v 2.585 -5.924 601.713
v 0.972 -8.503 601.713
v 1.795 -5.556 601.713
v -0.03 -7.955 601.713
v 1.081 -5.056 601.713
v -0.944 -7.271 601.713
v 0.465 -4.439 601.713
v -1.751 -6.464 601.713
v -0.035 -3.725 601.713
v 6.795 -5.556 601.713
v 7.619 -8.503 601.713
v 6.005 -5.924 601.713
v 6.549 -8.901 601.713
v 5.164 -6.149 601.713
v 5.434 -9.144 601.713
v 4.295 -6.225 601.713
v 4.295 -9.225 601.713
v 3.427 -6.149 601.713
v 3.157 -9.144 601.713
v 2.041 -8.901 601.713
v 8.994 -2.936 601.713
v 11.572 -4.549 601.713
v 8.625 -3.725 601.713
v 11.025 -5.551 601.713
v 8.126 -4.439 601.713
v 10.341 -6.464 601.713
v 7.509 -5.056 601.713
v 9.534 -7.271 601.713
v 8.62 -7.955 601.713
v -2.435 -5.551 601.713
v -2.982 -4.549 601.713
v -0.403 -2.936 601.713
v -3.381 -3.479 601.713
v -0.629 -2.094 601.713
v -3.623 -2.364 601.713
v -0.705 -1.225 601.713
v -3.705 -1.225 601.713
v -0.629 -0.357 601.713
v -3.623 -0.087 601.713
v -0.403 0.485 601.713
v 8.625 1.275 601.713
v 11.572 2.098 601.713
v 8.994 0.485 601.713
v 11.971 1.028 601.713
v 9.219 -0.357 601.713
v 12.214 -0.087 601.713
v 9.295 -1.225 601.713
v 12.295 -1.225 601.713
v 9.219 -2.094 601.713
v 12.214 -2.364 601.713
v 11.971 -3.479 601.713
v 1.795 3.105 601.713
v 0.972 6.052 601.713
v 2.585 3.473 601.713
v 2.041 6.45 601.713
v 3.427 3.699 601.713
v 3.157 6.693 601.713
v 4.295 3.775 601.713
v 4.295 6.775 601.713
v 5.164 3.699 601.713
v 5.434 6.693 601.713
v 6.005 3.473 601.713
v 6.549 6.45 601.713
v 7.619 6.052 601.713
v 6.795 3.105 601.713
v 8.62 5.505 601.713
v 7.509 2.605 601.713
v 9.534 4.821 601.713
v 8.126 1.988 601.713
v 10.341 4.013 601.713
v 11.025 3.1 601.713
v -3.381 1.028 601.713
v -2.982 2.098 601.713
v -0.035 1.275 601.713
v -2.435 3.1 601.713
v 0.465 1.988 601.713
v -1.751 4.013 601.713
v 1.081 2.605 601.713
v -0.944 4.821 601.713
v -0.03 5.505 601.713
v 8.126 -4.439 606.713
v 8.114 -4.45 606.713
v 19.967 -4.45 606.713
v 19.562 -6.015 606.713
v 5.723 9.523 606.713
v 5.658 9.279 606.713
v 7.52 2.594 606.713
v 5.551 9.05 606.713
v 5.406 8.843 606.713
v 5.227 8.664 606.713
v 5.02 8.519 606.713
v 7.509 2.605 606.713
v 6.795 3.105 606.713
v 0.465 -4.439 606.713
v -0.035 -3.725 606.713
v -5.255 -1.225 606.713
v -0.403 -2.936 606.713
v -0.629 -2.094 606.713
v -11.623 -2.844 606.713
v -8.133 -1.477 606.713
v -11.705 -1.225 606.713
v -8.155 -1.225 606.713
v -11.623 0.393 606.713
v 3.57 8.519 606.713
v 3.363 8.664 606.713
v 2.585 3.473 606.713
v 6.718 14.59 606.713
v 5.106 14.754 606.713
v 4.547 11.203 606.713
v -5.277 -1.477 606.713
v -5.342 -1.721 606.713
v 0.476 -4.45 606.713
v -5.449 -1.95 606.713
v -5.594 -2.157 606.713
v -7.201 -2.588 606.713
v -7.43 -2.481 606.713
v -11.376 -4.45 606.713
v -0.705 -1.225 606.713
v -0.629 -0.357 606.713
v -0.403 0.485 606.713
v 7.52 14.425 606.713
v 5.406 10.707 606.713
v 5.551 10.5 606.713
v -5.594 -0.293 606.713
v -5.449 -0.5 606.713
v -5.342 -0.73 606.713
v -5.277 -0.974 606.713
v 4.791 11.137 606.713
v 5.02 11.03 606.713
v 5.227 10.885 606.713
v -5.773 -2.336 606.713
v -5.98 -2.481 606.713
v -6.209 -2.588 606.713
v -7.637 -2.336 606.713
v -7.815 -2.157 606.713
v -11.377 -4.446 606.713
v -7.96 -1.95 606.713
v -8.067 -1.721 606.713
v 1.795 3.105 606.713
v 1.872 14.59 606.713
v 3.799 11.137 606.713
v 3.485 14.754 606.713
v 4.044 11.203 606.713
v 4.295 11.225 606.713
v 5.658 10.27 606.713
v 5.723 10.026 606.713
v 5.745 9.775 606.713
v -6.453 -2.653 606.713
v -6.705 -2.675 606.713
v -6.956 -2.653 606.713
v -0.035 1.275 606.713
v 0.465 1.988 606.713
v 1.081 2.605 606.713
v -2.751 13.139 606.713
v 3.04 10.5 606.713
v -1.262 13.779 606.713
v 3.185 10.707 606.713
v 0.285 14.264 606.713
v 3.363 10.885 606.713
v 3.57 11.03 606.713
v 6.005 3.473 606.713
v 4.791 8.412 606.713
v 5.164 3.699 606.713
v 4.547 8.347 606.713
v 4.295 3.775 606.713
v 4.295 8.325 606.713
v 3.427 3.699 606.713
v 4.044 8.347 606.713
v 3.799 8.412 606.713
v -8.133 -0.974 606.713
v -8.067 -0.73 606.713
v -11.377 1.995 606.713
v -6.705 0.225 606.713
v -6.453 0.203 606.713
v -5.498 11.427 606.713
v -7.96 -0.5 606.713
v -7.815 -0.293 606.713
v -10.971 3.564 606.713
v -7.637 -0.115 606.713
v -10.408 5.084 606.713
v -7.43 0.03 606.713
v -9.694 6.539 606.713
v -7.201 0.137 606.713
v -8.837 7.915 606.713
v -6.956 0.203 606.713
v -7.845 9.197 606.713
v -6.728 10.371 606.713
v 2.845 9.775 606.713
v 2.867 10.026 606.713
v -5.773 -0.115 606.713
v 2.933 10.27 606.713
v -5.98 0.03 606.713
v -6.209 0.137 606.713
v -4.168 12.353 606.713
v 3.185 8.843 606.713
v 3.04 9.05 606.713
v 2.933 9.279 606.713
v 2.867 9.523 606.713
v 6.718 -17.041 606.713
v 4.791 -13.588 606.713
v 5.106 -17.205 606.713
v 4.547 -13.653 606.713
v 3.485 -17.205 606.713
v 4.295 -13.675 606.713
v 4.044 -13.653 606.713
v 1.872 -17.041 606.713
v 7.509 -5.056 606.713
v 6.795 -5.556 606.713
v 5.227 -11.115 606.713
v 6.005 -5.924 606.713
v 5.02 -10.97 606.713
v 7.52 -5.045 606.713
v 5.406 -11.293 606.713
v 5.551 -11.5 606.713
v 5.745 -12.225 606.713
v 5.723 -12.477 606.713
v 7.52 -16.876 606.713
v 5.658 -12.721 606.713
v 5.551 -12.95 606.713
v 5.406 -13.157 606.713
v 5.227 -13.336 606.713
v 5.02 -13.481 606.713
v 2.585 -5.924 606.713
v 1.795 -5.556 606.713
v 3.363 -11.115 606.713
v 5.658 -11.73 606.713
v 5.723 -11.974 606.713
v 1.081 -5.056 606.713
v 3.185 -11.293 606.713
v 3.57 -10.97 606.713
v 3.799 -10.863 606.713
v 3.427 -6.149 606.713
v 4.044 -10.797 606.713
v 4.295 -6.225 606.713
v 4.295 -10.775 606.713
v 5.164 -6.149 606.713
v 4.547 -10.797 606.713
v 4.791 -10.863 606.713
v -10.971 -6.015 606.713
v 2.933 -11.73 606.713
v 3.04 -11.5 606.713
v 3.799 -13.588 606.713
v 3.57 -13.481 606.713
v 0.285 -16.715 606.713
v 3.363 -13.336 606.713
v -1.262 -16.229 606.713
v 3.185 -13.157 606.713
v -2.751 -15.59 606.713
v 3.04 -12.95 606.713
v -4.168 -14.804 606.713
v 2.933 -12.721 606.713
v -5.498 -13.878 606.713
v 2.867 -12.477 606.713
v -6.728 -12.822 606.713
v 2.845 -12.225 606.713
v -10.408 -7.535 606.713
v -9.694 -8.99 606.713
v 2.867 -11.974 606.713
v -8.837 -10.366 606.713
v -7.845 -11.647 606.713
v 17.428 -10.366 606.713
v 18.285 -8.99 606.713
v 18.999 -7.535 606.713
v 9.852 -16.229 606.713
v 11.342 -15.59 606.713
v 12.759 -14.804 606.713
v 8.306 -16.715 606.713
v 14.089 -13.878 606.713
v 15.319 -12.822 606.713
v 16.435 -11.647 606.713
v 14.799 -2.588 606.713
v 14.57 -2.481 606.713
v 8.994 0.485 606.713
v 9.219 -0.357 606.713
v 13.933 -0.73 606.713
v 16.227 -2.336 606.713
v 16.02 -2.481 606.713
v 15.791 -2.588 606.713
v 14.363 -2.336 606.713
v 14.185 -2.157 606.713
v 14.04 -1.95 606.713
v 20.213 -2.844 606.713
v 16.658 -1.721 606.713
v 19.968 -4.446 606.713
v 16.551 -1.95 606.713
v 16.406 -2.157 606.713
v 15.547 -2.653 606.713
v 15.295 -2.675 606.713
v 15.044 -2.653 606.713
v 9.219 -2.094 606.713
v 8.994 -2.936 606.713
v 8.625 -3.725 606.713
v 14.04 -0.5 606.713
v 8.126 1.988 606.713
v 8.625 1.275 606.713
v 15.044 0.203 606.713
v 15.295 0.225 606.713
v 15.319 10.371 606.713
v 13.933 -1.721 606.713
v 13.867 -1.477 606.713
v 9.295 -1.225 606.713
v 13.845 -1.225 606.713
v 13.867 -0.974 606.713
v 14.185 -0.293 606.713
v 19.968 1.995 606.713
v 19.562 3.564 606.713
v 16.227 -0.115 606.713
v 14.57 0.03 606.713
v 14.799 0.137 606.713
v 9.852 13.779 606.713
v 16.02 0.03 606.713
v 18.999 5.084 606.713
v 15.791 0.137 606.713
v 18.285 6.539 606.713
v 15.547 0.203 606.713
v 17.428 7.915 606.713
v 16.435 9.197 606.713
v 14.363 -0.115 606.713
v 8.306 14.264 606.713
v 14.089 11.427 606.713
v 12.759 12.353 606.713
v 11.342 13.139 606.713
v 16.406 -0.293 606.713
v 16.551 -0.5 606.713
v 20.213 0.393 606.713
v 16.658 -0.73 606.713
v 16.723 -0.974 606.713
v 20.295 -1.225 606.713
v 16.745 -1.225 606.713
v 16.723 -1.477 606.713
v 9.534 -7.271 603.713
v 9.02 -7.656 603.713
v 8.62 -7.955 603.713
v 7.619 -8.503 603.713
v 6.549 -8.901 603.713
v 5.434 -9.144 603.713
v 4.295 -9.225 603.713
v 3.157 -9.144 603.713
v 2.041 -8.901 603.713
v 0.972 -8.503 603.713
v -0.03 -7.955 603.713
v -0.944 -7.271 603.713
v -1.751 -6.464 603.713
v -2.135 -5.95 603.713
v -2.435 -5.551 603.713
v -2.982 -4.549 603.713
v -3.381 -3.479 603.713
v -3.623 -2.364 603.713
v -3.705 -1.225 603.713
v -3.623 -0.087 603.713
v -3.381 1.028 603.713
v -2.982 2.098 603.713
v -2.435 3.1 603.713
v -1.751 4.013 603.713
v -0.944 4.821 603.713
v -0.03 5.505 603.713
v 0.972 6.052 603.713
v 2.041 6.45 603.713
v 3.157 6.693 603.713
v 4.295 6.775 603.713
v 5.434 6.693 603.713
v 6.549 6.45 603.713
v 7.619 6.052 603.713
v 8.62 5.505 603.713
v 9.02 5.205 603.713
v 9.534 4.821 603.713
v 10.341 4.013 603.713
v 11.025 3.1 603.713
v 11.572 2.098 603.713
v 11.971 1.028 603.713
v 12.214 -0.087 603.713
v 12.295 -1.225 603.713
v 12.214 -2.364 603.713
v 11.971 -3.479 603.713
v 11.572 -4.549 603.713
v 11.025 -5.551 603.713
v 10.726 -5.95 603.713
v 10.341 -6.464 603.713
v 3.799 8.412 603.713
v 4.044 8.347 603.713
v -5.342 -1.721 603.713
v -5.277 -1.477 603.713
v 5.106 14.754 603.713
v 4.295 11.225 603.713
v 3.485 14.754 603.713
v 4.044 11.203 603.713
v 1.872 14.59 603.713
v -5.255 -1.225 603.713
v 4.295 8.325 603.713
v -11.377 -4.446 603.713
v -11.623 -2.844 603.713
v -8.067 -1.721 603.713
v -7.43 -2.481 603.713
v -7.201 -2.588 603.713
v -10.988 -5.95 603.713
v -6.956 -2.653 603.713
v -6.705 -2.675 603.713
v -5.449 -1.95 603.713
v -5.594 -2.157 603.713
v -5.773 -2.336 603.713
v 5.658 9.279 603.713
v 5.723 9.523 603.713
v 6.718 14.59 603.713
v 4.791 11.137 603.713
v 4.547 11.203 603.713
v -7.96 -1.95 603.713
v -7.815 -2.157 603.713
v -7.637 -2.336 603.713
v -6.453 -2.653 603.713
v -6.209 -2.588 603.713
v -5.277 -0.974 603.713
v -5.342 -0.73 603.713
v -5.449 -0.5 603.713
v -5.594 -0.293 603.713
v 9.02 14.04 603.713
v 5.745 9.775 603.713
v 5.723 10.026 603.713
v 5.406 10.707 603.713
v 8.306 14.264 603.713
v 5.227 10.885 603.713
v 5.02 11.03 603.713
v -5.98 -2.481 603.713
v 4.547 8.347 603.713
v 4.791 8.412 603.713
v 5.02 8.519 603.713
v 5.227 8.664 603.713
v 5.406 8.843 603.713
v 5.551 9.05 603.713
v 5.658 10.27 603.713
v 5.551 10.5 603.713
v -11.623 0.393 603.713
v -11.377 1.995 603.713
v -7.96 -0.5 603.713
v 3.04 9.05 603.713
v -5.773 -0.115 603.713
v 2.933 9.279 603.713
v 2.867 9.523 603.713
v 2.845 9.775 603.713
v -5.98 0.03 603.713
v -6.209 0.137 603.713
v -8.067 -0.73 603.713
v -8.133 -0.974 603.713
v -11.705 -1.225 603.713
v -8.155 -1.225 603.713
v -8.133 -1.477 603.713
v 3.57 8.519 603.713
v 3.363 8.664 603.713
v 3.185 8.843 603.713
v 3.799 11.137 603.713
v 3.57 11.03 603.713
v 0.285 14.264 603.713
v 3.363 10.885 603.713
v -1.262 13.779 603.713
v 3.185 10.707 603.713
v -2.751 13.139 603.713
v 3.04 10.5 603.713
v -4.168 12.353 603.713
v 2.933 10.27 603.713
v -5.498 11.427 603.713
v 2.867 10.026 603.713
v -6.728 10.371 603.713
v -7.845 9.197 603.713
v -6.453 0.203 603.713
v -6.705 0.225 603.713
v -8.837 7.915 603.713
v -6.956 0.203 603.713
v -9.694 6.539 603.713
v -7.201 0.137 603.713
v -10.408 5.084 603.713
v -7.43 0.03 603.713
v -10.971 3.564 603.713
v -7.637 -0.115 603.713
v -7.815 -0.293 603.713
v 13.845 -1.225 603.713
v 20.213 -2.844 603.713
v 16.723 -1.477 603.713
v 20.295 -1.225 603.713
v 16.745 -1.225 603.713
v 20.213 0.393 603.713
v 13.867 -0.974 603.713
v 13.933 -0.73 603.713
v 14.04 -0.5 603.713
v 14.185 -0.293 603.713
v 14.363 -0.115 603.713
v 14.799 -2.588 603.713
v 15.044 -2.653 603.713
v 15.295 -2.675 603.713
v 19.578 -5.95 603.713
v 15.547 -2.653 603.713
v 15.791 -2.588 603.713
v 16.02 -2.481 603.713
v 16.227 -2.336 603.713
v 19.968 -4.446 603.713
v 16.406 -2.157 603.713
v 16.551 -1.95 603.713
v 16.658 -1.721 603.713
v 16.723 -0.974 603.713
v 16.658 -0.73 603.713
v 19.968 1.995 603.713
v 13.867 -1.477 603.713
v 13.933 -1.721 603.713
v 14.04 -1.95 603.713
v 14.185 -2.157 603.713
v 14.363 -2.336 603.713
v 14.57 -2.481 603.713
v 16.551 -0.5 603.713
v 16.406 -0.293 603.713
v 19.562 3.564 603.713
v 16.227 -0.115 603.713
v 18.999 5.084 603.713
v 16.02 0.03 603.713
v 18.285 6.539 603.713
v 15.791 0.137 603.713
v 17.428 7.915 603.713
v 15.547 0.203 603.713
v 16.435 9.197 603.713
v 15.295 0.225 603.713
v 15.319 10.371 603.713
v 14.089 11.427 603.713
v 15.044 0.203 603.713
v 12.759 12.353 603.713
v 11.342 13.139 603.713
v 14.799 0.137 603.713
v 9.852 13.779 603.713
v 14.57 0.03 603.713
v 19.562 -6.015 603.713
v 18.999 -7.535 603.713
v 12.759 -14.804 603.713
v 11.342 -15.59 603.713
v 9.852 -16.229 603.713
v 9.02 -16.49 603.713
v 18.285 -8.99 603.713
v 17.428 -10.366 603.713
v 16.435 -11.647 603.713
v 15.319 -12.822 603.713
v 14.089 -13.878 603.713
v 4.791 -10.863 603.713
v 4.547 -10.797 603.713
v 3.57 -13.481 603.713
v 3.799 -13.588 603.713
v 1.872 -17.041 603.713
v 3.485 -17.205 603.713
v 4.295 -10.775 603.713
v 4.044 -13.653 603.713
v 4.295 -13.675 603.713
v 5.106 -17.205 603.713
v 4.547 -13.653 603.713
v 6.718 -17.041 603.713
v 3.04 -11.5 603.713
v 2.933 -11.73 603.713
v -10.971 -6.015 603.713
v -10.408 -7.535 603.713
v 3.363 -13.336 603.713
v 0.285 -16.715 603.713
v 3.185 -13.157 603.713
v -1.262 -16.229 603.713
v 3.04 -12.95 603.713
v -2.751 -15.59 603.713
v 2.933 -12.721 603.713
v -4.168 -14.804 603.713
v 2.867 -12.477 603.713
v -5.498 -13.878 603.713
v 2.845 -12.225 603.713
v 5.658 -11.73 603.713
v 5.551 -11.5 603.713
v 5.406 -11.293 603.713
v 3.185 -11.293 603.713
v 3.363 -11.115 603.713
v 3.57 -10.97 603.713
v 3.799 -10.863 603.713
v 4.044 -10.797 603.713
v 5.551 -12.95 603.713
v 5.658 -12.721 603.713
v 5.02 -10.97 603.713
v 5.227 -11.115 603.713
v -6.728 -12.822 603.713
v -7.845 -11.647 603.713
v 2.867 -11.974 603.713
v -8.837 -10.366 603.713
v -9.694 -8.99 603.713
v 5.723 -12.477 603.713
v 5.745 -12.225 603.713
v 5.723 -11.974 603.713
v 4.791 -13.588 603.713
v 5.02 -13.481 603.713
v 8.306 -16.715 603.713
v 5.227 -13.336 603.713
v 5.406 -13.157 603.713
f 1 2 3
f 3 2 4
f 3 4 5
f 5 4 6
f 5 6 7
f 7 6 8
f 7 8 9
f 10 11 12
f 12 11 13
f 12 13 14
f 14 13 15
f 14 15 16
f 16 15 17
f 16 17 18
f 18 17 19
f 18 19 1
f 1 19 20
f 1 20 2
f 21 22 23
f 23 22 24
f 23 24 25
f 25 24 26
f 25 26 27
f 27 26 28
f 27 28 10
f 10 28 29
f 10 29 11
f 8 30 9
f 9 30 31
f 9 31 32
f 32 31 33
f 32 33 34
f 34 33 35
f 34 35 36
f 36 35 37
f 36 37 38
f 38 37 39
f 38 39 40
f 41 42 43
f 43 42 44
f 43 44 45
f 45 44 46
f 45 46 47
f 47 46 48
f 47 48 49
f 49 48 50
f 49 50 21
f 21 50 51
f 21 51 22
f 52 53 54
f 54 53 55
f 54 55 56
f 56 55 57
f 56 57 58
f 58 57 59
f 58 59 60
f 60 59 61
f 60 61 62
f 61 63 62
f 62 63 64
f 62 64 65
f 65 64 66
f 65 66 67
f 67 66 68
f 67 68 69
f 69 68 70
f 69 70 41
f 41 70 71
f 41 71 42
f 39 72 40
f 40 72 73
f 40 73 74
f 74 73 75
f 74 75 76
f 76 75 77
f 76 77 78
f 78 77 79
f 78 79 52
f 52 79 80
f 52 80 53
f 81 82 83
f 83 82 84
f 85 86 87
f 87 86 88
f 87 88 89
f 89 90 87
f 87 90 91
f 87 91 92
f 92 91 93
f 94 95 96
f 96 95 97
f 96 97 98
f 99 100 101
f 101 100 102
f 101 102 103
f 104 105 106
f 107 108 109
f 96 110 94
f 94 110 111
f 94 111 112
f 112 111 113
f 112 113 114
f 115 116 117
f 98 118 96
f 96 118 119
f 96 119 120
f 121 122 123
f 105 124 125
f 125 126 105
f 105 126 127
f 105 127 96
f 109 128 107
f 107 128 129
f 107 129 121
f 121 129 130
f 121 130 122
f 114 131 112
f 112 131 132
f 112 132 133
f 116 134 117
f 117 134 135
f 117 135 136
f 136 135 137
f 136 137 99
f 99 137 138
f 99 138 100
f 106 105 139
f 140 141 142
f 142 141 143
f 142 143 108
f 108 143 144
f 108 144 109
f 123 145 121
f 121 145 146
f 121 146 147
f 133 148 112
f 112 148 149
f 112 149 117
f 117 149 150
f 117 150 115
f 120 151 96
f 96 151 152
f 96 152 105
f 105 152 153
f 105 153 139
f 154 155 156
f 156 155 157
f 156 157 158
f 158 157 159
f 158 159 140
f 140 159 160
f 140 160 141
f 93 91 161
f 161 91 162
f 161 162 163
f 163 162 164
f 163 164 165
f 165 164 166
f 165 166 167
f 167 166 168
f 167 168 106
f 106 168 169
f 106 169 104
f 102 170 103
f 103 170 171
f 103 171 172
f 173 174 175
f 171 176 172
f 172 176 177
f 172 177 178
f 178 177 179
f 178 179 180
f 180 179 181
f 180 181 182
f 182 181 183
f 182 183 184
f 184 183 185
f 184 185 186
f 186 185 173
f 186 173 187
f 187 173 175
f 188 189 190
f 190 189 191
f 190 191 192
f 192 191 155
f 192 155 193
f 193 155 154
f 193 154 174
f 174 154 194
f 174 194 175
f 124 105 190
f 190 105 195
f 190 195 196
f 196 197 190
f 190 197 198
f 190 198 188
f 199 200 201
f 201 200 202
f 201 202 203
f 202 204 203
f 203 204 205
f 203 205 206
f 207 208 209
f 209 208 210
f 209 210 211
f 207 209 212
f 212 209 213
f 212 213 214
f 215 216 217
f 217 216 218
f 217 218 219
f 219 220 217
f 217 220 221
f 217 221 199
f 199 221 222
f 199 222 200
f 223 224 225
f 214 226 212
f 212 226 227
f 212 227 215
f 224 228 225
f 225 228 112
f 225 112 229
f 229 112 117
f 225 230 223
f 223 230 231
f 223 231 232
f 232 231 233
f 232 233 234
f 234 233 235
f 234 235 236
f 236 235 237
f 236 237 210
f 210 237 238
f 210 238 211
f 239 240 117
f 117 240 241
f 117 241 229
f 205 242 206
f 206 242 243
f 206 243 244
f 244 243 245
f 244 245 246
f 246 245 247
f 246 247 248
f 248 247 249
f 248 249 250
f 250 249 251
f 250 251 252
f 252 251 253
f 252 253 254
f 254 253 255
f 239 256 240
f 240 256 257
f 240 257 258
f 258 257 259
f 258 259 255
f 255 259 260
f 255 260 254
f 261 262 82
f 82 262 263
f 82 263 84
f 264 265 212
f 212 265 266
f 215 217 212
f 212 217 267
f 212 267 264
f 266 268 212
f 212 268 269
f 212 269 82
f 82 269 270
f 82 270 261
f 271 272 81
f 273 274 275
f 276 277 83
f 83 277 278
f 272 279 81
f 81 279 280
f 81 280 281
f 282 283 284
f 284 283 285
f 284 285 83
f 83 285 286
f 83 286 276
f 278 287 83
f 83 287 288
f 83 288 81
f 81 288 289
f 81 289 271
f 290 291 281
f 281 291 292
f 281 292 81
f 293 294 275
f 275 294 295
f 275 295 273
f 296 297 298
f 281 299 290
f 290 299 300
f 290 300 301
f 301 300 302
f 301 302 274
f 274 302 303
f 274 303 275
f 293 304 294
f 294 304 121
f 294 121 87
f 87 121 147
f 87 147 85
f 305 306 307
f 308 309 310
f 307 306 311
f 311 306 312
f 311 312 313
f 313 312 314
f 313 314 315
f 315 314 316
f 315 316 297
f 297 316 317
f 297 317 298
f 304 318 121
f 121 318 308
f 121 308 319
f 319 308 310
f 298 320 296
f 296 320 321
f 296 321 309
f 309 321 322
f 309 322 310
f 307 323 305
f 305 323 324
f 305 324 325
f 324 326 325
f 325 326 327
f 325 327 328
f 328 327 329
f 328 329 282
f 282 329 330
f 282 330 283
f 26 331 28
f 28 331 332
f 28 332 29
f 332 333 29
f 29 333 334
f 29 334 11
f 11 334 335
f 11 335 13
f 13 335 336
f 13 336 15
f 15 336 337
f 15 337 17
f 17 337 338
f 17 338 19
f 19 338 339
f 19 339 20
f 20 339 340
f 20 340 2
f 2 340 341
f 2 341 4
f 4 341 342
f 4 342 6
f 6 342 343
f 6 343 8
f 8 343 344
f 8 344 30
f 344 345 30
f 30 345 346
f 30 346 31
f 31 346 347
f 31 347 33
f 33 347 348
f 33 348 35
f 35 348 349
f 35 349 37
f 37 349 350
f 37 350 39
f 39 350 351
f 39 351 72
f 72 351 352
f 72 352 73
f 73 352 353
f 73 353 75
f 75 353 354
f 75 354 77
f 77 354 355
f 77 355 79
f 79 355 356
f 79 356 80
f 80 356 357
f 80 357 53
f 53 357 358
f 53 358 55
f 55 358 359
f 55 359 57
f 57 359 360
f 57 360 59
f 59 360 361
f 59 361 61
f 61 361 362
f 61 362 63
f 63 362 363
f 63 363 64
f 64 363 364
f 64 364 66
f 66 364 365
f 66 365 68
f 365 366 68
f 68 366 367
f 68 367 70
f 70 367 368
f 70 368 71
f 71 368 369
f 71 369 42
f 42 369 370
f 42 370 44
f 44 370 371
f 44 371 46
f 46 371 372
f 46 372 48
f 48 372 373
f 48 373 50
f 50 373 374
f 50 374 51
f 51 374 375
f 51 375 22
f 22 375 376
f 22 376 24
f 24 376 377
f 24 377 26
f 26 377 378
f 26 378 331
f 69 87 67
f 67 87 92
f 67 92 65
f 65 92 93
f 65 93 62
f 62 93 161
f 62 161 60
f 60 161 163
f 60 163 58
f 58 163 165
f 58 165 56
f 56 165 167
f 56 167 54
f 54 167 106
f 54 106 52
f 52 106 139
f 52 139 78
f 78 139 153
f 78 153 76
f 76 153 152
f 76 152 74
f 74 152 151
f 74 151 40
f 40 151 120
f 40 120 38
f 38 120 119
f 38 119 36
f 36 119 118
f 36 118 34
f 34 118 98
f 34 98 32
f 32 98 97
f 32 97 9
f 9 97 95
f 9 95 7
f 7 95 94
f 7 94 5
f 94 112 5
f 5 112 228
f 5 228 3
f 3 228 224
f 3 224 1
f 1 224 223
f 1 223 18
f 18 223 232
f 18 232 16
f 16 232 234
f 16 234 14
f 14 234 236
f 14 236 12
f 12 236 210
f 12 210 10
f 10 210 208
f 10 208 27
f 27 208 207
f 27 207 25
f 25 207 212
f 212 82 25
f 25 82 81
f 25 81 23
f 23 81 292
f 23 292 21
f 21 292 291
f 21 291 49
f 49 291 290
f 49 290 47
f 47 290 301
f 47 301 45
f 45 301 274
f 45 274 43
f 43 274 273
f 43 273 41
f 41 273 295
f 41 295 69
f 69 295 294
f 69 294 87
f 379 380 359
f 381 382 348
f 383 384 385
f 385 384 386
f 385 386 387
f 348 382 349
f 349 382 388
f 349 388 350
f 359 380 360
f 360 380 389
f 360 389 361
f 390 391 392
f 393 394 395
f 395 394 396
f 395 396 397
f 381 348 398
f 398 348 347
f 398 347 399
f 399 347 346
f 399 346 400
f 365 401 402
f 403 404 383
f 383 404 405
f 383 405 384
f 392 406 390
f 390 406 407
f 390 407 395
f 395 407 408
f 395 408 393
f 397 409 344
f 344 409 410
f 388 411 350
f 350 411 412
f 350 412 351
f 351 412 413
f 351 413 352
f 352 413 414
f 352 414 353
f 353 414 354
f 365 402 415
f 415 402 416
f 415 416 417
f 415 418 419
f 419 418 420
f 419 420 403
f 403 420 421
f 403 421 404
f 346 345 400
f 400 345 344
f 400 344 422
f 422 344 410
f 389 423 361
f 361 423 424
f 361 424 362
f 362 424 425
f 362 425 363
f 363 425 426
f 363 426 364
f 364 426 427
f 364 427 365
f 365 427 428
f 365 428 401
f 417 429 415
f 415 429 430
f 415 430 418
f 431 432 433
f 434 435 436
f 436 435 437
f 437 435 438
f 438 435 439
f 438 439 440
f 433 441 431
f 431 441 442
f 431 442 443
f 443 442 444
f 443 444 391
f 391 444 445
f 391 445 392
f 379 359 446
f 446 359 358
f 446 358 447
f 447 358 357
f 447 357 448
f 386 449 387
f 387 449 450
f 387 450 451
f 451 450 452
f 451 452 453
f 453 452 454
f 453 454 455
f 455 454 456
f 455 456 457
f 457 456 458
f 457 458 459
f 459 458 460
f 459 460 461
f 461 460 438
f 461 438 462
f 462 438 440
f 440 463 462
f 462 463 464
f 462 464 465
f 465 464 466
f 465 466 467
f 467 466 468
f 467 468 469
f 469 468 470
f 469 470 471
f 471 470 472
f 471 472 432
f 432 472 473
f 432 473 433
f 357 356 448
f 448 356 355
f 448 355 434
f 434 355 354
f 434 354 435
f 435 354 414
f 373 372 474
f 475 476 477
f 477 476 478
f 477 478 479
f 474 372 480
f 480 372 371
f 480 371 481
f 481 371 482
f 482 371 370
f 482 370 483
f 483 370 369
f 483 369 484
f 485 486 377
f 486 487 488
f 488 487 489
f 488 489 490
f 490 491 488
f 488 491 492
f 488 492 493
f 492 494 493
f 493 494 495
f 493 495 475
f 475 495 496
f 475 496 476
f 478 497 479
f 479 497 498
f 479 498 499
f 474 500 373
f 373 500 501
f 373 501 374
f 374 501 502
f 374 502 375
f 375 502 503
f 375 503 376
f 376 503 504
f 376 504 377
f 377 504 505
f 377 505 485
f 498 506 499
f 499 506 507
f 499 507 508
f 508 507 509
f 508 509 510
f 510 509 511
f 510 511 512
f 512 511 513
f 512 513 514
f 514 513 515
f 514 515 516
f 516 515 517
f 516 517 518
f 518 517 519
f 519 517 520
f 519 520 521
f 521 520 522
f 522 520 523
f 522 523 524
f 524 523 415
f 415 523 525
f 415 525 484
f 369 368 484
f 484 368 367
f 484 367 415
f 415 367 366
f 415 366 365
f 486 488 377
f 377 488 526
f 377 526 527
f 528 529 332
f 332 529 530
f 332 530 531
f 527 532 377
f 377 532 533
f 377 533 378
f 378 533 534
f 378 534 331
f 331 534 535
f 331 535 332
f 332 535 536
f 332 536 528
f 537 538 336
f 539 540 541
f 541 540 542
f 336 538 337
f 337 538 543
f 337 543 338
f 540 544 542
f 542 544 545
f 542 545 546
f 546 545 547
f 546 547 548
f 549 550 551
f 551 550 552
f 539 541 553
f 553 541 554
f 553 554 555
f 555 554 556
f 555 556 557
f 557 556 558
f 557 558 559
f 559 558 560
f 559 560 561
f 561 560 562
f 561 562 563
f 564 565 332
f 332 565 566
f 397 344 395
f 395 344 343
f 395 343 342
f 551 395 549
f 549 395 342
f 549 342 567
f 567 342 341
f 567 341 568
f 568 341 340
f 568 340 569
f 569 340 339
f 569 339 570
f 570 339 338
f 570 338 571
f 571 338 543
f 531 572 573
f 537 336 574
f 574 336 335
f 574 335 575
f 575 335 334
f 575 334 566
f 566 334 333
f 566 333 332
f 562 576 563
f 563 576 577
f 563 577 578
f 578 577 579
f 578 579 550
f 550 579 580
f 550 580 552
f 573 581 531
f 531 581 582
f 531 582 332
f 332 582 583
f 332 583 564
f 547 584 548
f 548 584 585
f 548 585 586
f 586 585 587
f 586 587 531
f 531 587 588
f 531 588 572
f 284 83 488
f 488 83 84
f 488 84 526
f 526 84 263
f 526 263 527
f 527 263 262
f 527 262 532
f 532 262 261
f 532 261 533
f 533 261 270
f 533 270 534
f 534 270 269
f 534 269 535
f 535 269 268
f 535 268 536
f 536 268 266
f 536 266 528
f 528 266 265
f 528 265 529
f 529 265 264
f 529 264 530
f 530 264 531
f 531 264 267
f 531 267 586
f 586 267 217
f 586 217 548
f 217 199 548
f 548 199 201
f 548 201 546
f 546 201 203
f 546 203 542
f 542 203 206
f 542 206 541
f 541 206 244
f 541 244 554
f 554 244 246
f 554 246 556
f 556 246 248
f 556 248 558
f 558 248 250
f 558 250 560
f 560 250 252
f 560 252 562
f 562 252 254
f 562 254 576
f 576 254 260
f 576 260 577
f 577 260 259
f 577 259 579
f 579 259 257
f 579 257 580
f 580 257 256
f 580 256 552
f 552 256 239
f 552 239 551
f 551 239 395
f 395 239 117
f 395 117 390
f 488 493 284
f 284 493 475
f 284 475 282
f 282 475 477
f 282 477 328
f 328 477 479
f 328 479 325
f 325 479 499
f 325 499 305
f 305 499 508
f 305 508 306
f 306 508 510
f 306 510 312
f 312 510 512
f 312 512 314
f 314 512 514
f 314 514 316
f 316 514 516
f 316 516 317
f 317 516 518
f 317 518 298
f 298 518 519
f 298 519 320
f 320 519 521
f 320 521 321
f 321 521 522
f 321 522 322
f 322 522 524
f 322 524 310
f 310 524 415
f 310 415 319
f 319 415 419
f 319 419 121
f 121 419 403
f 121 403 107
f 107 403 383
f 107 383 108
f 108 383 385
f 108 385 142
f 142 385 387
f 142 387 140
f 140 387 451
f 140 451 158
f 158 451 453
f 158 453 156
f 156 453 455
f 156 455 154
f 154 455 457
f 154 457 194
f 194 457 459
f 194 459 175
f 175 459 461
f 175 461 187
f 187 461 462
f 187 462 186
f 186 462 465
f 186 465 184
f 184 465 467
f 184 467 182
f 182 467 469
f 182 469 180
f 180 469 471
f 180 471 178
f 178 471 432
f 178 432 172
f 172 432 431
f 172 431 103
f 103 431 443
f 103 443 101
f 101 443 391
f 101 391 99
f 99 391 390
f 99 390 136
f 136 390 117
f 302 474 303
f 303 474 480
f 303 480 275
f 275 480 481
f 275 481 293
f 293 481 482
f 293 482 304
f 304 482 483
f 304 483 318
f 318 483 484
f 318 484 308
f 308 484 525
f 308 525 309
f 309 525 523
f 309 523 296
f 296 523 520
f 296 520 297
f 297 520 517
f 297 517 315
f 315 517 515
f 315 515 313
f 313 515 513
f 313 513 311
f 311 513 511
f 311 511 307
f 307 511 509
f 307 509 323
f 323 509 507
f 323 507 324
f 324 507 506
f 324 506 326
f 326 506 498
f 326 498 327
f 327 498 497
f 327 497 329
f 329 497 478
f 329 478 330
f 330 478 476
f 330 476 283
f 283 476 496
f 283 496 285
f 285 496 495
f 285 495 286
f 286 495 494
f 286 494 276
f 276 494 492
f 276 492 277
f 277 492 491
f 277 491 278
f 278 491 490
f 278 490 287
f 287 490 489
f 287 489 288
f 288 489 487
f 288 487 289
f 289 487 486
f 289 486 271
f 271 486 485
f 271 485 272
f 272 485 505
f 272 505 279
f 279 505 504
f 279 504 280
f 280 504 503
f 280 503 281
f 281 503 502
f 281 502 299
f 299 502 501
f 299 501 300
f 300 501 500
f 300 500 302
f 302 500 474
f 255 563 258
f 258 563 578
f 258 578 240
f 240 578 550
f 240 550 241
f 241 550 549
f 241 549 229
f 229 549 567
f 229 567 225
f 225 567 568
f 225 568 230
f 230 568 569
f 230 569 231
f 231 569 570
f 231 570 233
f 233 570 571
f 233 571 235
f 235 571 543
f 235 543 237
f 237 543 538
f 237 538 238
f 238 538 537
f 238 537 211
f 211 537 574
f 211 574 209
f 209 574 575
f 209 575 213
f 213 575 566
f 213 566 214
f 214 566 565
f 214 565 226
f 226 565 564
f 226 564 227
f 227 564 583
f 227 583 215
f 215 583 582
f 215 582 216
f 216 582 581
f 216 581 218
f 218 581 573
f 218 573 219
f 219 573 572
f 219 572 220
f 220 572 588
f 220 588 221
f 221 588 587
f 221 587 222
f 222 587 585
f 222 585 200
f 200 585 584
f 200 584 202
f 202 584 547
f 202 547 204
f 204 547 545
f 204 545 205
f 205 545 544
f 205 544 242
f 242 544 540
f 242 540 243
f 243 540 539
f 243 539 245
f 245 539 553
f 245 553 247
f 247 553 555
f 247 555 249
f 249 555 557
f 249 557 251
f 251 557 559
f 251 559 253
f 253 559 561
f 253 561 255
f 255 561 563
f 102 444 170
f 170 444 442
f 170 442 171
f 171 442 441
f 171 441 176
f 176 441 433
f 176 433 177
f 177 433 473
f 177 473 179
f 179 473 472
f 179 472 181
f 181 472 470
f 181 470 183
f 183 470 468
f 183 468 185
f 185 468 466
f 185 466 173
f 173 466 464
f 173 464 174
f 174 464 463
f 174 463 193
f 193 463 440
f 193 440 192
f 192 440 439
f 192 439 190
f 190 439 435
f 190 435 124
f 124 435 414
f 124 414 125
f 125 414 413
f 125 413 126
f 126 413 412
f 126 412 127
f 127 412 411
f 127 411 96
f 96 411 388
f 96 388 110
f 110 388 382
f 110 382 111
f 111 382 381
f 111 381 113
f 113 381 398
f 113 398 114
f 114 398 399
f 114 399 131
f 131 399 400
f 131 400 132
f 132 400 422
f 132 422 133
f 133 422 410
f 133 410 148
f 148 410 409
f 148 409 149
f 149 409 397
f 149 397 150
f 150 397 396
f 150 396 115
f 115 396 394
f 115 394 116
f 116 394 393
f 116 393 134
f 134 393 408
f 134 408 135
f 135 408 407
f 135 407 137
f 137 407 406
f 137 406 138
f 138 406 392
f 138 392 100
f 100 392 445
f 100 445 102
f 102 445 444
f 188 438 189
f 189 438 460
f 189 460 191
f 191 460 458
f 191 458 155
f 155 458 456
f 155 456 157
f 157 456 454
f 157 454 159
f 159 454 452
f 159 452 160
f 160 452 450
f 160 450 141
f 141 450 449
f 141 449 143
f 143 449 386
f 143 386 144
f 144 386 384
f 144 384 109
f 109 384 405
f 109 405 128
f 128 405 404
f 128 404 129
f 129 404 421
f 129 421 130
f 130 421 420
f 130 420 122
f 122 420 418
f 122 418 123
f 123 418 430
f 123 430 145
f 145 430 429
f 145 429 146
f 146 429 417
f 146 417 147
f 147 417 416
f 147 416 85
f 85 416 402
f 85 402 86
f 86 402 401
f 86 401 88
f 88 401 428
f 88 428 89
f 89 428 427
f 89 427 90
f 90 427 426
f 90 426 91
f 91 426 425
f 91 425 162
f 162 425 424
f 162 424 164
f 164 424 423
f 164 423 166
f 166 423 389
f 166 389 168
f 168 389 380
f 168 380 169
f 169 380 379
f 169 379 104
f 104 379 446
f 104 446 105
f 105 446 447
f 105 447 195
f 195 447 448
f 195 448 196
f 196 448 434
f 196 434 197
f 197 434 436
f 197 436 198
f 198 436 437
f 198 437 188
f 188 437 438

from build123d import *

# Parameters (mm, degrees)
SKETCH_1_R      = 8
SKETCH_1_R_2    = 5
EXTRUDE_1_DEPTH = 5
SKETCH_4_R      = 16
SKETCH_4_R_2    = 8
EXTRUDE_2_DEPTH = 3
SKETCH_5_R      = 16
SKETCH_5_R_2    = 12.5
EXTRUDE_3_DEPTH = 3
ST2_9_1_D       = 2.9


with BuildPart() as part:
    # 草图1 → 凸台-拉伸1 (new body)
    with BuildSketch(Plane(origin=(0, 0, 606.712583837), x_dir=(-1, 0, 0), z_dir=(0, 0, -1))):
        with Locations((-4.295303519, -1.225452996)):
            Circle(SKETCH_1_R)
        with Locations((-4.295303519, -1.225452996)):
            Circle(SKETCH_1_R_2, mode=Mode.SUBTRACT)
    extrude(amount=EXTRUDE_1_DEPTH)

    # 草图4 → 凸台-拉伸2 (add)
    with BuildSketch(Plane(origin=(0, 0, 606.712583837), x_dir=(-1, 0, 0), z_dir=(0, 0, -1))):
        with Locations((-4.295303519, -1.225452996)):
            Circle(SKETCH_4_R)
        with Locations((-4.295303519, -1.225452996)):
            Circle(SKETCH_4_R_2, mode=Mode.SUBTRACT)
    extrude(amount=EXTRUDE_2_DEPTH)

    # 草图5 → 凸台-拉伸3 (add)
    with BuildSketch(Plane(origin=(0, 0, 603.712583837), x_dir=(-1, 0, 0), z_dir=(0, 0, -1))):
        with Locations((-4.295303519, -1.225452996)):
            Circle(SKETCH_5_R)
        with Locations((-4.295303519, -1.225452996)):
            Circle(SKETCH_5_R_2, mode=Mode.SUBTRACT)
    extrude(amount=-EXTRUDE_3_DEPTH)

    # ST2.9 间隙孔1 (through all)
    with Locations(Plane(origin=(0, 0, 603.712583837), x_dir=(-1, 0, 0), z_dir=(0, 0, -1))):
        with Locations((-4.295303519, 9.774547004), (6.704696481, -1.225452996), (-4.295303519, -12.225452996), (-15.295303519, -1.225452996)):
            Hole(ST2_9_1_D / 2)


solid = part.part
